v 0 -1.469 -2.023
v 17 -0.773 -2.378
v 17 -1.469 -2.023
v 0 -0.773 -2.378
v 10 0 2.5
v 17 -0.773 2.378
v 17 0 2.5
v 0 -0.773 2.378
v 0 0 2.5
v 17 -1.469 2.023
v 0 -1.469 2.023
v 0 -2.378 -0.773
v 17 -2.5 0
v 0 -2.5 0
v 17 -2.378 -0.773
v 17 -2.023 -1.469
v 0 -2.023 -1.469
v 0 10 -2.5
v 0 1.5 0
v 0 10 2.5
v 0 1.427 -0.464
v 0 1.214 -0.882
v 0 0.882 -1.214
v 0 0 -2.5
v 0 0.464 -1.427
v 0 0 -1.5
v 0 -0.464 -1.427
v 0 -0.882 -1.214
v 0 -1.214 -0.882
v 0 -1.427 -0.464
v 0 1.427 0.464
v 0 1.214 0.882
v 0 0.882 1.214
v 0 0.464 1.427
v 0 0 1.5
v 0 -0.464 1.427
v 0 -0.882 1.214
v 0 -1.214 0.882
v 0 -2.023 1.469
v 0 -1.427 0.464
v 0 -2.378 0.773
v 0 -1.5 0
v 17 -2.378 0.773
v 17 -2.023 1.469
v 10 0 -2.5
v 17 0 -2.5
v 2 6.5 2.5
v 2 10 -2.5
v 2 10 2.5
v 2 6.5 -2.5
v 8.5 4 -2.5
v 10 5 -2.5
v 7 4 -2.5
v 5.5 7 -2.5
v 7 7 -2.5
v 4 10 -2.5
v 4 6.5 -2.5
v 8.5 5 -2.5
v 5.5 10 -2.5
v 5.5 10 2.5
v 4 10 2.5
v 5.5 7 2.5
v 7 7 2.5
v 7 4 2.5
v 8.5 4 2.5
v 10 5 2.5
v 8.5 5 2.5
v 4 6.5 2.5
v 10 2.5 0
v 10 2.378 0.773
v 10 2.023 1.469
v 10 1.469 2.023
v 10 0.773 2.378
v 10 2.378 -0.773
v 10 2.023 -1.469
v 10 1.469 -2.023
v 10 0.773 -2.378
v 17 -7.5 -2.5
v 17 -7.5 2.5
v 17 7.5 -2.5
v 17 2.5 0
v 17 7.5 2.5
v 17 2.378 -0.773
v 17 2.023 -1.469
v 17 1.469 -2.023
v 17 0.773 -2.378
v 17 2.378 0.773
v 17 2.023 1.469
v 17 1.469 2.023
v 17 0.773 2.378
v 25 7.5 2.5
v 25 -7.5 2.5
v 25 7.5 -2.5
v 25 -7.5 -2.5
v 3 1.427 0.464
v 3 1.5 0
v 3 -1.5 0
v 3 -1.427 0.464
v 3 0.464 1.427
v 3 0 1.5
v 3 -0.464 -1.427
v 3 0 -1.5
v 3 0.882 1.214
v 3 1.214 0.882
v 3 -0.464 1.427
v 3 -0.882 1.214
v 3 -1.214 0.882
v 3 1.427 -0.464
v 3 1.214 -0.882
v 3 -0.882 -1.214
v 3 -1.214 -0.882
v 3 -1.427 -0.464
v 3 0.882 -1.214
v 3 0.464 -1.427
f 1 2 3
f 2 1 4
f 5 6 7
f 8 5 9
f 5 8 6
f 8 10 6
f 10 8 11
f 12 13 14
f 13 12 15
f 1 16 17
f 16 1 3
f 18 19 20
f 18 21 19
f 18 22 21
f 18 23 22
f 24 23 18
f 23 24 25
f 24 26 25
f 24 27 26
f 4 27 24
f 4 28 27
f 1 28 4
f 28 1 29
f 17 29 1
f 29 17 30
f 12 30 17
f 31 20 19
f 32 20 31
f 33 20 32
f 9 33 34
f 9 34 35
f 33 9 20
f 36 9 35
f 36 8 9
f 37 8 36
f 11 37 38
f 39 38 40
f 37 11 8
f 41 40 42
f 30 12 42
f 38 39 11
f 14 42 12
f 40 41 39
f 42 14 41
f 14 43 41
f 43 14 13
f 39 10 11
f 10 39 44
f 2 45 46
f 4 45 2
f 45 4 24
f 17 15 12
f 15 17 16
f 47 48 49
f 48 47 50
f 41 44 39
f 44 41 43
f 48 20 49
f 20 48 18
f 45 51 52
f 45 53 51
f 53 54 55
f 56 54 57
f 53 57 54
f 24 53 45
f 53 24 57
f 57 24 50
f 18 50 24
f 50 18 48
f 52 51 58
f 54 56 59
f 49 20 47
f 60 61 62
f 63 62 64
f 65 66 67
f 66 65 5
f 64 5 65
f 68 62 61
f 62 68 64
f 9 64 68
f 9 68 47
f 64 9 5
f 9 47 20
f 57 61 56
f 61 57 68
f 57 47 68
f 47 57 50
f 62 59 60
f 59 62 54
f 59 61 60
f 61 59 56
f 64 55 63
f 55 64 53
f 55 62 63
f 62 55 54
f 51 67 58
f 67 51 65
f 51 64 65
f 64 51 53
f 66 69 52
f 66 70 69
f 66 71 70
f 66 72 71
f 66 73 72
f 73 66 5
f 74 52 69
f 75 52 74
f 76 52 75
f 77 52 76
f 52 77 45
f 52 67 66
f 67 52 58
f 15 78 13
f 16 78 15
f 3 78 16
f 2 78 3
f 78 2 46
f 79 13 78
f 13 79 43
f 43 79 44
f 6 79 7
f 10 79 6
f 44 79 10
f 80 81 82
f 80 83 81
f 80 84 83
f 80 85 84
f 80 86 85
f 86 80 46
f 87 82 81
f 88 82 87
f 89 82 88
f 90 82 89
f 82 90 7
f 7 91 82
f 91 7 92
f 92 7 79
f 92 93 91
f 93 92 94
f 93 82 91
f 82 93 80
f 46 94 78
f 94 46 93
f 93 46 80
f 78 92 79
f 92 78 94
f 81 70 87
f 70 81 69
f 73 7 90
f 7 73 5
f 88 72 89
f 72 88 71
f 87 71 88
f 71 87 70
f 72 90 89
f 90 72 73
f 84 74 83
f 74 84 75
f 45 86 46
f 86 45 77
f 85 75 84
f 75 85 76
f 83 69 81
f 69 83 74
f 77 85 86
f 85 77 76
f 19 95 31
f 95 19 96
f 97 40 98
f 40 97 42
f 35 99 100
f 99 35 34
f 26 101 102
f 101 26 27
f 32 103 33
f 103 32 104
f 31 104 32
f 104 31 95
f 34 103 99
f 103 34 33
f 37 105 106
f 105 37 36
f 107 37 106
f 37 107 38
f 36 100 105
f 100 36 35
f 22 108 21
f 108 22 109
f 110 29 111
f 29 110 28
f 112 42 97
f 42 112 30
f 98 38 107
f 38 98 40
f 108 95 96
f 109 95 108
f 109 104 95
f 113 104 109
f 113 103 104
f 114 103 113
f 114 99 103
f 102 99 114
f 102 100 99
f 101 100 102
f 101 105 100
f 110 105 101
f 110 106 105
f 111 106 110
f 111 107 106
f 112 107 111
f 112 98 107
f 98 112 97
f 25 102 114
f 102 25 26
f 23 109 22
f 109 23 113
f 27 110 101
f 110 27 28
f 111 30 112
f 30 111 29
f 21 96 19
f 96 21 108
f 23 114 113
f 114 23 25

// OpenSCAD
/* By JuJa */

/* define the key profile according to the plan */
/* width of the profile, lenght of the profile */ 
key_profile = [ [2   ,10  ],
                [2   ,6.5 ],
                [1.5 ,10  ],
                [1.5 ,7   ],
                [1.5 ,4   ],
                [1.5 ,5   ]];

/* make recusive function to calcualte the offset */ 
function offset(key_profile, i ) =  i > 0 ?  key_profile[i-1][0] + offset(key_profile, i-1 )  : 0; 

module profile( l , h ){
    diameter=5;
    rotate ([90,0,90]){
       cylinder(d=diameter , h=h, center=true,$fn=20);
       translate([l/2,0,0]) cube([l,diameter,h],center=true);
    }
}


/* generate the profile */
module full_profile(){
    for ( i = [0 : len(key_profile)-1] ){    
      echo ( offset(key_profile,i)  );
      translate([  offset(key_profile, i ) + key_profile[i][0]/2, 0 , 0]) 
      profile( key_profile[i][1] , key_profile[i][0] );
    }
}

//define the size of the element
cube_x= 8;
cube_y=15;
cube_z= 5;

cylinder_d=5;
cylinder_h=17;

hole_d=3;
hole_h=3;


difference(){
   union(){
        translate([cylinder_h +cube_x/2,0,0])
        cube([cube_x,cube_y,cube_z],center=true);
        
        translate([cylinder_h/2,0,0])
        rotate ([90,0,90])cylinder( d=cylinder_d , h=cylinder_h, center=true,$fn=20);

        full_profile();
       
   }  
   
    translate([hole_h/2,0,0])
    rotate ([90,0,90])
    cylinder(d=hole_d , h=hole_h, center=true,$fn=20);
}   
